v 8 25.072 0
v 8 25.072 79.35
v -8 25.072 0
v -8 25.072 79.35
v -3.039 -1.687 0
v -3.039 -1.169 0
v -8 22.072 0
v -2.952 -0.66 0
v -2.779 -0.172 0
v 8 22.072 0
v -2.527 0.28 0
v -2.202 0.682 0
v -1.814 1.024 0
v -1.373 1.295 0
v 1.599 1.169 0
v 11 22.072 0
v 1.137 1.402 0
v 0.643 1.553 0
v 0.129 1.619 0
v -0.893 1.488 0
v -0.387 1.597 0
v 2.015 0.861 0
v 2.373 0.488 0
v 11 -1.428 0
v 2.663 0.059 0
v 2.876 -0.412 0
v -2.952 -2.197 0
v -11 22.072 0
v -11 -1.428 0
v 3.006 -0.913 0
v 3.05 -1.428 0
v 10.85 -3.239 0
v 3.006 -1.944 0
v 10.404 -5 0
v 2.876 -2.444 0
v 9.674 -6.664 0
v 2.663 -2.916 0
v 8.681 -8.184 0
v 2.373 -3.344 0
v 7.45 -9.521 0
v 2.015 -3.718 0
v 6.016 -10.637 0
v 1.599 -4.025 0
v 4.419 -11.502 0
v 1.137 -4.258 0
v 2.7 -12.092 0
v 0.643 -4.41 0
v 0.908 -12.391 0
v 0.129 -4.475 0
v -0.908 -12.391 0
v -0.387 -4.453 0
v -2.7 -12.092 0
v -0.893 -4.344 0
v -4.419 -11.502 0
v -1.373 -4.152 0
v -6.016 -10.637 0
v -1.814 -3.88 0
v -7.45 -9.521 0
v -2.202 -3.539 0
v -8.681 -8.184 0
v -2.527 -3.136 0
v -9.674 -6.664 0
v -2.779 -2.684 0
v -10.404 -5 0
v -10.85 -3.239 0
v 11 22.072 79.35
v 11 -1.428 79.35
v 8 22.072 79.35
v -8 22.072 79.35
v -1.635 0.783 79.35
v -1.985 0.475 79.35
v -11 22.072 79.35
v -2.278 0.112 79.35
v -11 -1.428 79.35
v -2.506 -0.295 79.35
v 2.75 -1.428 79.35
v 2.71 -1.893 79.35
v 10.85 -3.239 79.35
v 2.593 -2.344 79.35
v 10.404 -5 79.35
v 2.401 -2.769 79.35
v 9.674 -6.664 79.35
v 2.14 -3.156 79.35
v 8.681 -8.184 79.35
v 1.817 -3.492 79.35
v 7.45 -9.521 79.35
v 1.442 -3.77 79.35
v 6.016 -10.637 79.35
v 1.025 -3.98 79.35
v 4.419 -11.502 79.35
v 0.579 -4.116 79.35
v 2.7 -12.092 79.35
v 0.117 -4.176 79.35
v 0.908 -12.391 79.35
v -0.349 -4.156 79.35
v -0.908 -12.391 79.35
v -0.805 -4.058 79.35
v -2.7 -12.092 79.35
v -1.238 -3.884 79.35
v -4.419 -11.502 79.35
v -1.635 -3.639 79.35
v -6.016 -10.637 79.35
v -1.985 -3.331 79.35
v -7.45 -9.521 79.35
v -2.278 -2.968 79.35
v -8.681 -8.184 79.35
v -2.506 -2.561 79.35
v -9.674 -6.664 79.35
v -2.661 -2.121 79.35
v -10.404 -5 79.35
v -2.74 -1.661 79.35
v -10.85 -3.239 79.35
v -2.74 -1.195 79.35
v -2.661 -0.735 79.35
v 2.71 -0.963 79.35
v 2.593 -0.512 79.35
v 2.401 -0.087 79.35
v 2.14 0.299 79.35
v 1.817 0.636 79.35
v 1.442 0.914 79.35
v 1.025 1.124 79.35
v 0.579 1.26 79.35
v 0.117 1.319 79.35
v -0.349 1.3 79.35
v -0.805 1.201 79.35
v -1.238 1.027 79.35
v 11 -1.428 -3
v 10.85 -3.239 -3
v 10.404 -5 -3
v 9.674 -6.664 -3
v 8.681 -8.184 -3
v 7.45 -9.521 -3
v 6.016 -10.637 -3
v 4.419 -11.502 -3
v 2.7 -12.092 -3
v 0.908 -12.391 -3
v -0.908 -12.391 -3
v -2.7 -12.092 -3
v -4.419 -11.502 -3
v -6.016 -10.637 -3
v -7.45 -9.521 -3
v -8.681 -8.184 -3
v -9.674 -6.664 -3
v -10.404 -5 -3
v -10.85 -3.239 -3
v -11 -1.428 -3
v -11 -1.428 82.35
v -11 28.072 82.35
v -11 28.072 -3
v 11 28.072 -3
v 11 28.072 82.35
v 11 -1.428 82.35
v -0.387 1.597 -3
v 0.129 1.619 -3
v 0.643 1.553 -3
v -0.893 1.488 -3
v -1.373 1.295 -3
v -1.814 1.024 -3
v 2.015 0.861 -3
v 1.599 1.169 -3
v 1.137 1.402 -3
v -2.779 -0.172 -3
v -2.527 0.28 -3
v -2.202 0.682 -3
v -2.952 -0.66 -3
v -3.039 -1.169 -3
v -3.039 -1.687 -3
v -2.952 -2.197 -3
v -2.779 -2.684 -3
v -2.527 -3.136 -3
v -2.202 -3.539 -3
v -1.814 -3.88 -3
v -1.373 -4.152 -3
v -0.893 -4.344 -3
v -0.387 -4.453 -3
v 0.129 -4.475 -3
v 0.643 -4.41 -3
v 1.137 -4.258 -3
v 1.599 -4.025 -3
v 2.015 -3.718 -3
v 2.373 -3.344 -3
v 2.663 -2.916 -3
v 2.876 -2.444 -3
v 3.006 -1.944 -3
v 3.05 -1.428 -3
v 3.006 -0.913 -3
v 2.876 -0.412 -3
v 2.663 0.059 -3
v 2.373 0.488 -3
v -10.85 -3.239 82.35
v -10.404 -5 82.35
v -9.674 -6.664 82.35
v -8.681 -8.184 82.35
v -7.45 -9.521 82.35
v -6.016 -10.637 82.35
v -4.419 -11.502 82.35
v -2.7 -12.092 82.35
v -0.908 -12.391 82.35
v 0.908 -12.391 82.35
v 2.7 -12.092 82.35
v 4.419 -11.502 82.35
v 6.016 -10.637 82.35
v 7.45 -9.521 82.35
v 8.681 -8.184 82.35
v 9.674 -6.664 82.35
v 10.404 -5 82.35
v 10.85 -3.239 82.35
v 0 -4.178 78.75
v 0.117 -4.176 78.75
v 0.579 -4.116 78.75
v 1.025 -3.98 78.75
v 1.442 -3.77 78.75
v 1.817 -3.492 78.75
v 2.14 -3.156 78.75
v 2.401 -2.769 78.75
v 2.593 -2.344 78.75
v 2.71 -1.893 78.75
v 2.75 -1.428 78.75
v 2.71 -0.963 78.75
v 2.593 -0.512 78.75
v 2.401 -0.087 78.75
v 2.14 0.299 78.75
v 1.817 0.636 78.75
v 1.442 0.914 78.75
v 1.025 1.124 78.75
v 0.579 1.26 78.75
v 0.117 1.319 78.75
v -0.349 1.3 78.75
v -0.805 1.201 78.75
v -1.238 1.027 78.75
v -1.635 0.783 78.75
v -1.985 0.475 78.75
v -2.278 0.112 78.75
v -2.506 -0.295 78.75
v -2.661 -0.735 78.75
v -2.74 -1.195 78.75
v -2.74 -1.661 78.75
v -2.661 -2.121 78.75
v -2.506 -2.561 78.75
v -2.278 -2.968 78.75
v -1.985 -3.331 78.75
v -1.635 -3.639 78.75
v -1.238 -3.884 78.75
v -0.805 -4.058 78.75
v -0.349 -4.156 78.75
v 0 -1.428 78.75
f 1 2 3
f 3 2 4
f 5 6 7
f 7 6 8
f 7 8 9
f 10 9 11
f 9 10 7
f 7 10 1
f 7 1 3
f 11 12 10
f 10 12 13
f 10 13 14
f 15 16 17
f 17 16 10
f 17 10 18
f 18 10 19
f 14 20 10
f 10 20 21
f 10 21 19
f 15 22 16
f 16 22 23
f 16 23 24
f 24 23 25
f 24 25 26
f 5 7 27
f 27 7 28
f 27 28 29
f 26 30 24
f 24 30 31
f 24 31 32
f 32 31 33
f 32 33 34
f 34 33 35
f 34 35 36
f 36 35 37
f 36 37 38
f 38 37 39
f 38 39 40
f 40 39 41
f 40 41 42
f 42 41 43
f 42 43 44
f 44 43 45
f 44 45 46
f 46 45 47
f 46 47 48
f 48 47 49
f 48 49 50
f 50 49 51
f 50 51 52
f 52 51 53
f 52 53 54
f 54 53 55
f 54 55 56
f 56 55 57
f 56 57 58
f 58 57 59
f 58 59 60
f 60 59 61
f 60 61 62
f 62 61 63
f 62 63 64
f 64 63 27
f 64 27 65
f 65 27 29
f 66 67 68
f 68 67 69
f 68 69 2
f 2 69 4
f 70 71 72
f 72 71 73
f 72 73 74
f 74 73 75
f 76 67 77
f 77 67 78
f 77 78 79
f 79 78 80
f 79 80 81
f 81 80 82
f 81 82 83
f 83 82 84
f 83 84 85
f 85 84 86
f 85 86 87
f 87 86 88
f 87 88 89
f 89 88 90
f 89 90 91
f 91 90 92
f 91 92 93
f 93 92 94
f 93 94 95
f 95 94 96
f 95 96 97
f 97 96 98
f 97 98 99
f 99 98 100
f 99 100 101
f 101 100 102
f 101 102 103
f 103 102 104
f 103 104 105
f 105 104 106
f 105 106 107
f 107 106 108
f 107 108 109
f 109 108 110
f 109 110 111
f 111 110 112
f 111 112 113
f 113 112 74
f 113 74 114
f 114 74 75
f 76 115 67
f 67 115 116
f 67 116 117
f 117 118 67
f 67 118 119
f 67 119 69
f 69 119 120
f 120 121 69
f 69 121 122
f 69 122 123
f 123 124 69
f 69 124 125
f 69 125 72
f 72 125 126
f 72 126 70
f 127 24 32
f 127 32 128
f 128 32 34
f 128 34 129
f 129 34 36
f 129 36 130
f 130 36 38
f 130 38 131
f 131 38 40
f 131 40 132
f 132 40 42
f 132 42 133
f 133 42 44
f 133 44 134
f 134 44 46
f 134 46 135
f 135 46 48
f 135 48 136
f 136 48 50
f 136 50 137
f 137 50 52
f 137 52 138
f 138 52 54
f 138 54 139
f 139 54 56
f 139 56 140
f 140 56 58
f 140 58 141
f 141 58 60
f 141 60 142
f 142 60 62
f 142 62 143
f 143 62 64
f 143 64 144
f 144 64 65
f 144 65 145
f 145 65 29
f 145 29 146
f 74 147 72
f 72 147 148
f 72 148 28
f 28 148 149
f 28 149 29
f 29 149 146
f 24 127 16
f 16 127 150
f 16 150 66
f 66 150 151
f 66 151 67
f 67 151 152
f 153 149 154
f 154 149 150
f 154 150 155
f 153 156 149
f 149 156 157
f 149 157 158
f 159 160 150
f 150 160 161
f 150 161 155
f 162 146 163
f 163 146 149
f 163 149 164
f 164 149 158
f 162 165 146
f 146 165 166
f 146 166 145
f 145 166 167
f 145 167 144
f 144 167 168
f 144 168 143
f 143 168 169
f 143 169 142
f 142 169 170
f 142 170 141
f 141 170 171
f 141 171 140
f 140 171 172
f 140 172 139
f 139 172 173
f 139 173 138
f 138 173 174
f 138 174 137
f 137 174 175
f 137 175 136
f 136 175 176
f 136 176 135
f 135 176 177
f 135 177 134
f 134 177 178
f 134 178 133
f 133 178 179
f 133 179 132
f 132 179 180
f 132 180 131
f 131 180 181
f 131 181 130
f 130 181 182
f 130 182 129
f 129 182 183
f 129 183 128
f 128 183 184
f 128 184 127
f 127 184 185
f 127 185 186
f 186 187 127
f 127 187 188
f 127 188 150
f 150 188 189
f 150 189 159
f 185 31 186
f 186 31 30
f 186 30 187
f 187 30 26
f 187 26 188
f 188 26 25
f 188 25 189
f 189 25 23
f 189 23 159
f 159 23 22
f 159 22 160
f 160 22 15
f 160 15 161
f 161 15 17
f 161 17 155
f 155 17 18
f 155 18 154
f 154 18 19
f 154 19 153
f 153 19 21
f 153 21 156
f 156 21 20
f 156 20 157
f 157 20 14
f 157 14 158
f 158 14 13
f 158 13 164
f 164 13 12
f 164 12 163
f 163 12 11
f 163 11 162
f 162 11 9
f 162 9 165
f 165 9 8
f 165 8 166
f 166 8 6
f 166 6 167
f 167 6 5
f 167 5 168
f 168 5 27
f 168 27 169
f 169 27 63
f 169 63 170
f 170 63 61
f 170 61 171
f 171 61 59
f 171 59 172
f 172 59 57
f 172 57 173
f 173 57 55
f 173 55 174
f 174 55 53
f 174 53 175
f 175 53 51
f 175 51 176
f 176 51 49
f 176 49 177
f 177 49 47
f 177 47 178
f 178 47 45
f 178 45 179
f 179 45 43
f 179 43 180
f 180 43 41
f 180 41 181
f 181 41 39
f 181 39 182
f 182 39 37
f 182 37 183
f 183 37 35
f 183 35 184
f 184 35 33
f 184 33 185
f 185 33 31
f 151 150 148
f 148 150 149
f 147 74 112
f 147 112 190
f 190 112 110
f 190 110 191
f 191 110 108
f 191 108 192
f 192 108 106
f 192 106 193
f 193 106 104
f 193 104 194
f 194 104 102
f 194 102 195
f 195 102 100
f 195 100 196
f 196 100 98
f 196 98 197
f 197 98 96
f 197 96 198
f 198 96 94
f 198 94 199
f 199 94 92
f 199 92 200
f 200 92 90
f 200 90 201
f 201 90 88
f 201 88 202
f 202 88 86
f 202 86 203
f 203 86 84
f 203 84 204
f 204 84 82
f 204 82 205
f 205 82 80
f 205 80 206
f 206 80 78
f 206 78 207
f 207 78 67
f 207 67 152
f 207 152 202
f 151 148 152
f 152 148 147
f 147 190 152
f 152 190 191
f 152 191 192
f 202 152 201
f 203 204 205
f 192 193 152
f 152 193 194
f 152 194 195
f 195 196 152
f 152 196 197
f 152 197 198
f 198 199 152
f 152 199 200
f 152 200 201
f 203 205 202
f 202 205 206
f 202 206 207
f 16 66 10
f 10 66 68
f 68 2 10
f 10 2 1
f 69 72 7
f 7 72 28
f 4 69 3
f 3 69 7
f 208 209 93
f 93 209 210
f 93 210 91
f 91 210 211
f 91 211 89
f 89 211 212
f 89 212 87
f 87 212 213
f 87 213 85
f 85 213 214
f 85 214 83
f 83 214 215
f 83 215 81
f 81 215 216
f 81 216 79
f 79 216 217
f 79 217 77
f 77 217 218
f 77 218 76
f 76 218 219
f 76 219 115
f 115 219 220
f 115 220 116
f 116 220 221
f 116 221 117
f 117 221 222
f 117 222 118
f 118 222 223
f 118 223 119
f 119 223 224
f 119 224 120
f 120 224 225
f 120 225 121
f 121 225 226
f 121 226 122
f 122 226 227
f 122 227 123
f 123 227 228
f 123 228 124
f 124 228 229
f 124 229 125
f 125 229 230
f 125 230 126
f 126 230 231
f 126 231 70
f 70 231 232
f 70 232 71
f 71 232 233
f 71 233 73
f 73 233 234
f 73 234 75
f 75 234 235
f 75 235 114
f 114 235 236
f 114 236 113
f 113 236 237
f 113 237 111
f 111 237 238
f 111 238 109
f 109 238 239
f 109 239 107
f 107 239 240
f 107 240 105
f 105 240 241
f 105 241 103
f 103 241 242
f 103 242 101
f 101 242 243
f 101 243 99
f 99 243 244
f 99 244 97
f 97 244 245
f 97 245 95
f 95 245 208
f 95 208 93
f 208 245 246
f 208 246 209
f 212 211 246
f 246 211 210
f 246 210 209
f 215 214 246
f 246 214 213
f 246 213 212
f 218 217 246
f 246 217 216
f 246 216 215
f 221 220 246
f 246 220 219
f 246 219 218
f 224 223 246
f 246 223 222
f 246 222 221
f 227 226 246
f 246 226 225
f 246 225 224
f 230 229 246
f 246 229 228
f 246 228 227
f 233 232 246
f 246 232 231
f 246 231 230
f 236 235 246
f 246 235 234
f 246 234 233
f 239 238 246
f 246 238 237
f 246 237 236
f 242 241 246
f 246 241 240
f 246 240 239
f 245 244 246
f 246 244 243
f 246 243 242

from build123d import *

# Parameters (mm, degrees)
ESBO_O1_R                = 3.05
RESSALTO_EXTRUS_O1_DEPTH = 3
ESBO_O2_W                = 22
ESBO_O2_H                = 82.35
RESSALTO_EXTRUS_O2_DEPTH = 3
RESSALTO_EXTRUS_O3_START = 3
RESSALTO_EXTRUS_O3_DEPTH = 3
ESBO_O6_W                = 85.35
ESBO_O6_H                = 6
RESSALTO_EXTRUS_O5_DEPTH = 3
ESBO_O7_R                = 2.75
RESSALTO_EXTRUS_O6_DEPTH = 0.6


with BuildPart() as part:
    # Esboço1 → Ressalto-extrusão1 (new body)
    with BuildSketch(Plane.XY):
        with BuildLine():
            Line((11, -1.428145739), (11, 25.071854261))
            Line((11, 25.071854261), (-11, 25.071854261))
            Line((-11, 25.071854261), (-11, -1.428145739))
            ThreePointArc((-11, -1.428145739), (0, -12.428145739), (11, -1.428145739))
        make_face()
        with Locations((0, -1.428145739)):
            Circle(ESBO_O1_R, mode=Mode.SUBTRACT)
    extrude(amount=-RESSALTO_EXTRUS_O1_DEPTH)

    # Esboço2 → Ressalto-extrusão2 (add)
    with BuildSketch(Plane(origin=(0, 25.071854261, 0), x_dir=(1, 0, 0), z_dir=(0, 1, 0))):
        with Locations((0, -38.175)):
            Rectangle(ESBO_O2_W, ESBO_O2_H)
    extrude(amount=RESSALTO_EXTRUS_O2_DEPTH)

    # Esboço3 → Ressalto-extrusão3 (add)
    with BuildSketch(Plane.XY.offset(79.35).offset(RESSALTO_EXTRUS_O3_START)):
        with BuildLine():
            Line((11, 28.071854261), (-11, 28.071854261))
            Line((-11, 28.071854261), (-11, -1.428145739))
            ThreePointArc((-11, -1.428145739), (0, -12.428145739), (11, -1.428145739))
            Line((11, -1.428145739), (11, 28.071854261))
        make_face()
    extrude(amount=-RESSALTO_EXTRUS_O3_DEPTH)

    # Esboço6 → Ressalto-extrusão5 (add)
    with BuildSketch(Plane(origin=(11, 0, 0), x_dir=(0, 0, -1), z_dir=(1, 0, 0))):
        with Locations((-39.675, 25.071854261)):
            Rectangle(ESBO_O6_W, ESBO_O6_H)
    ressalto_extrus_o5 = extrude(amount=-RESSALTO_EXTRUS_O5_DEPTH)

    # Espelhar1: Ressalto-extrusão5 across plane
    add(ressalto_extrus_o5.mirror(Plane(origin=(0, 0, 0), x_dir=(0, 0, 1), z_dir=(1, 0, 0))))

    # Esboço7 → Ressalto-extrusão6 (add)
    with BuildSketch(Plane(origin=(0, 0, 79.35), x_dir=(-1, 0, 0), z_dir=(0, 0, -1))):
        with Locations(Location((0, -1.428145739, 0), (0, 0, 180))):
            Circle(ESBO_O7_R)
    extrude(amount=RESSALTO_EXTRUS_O6_DEPTH)


solid = part.part
